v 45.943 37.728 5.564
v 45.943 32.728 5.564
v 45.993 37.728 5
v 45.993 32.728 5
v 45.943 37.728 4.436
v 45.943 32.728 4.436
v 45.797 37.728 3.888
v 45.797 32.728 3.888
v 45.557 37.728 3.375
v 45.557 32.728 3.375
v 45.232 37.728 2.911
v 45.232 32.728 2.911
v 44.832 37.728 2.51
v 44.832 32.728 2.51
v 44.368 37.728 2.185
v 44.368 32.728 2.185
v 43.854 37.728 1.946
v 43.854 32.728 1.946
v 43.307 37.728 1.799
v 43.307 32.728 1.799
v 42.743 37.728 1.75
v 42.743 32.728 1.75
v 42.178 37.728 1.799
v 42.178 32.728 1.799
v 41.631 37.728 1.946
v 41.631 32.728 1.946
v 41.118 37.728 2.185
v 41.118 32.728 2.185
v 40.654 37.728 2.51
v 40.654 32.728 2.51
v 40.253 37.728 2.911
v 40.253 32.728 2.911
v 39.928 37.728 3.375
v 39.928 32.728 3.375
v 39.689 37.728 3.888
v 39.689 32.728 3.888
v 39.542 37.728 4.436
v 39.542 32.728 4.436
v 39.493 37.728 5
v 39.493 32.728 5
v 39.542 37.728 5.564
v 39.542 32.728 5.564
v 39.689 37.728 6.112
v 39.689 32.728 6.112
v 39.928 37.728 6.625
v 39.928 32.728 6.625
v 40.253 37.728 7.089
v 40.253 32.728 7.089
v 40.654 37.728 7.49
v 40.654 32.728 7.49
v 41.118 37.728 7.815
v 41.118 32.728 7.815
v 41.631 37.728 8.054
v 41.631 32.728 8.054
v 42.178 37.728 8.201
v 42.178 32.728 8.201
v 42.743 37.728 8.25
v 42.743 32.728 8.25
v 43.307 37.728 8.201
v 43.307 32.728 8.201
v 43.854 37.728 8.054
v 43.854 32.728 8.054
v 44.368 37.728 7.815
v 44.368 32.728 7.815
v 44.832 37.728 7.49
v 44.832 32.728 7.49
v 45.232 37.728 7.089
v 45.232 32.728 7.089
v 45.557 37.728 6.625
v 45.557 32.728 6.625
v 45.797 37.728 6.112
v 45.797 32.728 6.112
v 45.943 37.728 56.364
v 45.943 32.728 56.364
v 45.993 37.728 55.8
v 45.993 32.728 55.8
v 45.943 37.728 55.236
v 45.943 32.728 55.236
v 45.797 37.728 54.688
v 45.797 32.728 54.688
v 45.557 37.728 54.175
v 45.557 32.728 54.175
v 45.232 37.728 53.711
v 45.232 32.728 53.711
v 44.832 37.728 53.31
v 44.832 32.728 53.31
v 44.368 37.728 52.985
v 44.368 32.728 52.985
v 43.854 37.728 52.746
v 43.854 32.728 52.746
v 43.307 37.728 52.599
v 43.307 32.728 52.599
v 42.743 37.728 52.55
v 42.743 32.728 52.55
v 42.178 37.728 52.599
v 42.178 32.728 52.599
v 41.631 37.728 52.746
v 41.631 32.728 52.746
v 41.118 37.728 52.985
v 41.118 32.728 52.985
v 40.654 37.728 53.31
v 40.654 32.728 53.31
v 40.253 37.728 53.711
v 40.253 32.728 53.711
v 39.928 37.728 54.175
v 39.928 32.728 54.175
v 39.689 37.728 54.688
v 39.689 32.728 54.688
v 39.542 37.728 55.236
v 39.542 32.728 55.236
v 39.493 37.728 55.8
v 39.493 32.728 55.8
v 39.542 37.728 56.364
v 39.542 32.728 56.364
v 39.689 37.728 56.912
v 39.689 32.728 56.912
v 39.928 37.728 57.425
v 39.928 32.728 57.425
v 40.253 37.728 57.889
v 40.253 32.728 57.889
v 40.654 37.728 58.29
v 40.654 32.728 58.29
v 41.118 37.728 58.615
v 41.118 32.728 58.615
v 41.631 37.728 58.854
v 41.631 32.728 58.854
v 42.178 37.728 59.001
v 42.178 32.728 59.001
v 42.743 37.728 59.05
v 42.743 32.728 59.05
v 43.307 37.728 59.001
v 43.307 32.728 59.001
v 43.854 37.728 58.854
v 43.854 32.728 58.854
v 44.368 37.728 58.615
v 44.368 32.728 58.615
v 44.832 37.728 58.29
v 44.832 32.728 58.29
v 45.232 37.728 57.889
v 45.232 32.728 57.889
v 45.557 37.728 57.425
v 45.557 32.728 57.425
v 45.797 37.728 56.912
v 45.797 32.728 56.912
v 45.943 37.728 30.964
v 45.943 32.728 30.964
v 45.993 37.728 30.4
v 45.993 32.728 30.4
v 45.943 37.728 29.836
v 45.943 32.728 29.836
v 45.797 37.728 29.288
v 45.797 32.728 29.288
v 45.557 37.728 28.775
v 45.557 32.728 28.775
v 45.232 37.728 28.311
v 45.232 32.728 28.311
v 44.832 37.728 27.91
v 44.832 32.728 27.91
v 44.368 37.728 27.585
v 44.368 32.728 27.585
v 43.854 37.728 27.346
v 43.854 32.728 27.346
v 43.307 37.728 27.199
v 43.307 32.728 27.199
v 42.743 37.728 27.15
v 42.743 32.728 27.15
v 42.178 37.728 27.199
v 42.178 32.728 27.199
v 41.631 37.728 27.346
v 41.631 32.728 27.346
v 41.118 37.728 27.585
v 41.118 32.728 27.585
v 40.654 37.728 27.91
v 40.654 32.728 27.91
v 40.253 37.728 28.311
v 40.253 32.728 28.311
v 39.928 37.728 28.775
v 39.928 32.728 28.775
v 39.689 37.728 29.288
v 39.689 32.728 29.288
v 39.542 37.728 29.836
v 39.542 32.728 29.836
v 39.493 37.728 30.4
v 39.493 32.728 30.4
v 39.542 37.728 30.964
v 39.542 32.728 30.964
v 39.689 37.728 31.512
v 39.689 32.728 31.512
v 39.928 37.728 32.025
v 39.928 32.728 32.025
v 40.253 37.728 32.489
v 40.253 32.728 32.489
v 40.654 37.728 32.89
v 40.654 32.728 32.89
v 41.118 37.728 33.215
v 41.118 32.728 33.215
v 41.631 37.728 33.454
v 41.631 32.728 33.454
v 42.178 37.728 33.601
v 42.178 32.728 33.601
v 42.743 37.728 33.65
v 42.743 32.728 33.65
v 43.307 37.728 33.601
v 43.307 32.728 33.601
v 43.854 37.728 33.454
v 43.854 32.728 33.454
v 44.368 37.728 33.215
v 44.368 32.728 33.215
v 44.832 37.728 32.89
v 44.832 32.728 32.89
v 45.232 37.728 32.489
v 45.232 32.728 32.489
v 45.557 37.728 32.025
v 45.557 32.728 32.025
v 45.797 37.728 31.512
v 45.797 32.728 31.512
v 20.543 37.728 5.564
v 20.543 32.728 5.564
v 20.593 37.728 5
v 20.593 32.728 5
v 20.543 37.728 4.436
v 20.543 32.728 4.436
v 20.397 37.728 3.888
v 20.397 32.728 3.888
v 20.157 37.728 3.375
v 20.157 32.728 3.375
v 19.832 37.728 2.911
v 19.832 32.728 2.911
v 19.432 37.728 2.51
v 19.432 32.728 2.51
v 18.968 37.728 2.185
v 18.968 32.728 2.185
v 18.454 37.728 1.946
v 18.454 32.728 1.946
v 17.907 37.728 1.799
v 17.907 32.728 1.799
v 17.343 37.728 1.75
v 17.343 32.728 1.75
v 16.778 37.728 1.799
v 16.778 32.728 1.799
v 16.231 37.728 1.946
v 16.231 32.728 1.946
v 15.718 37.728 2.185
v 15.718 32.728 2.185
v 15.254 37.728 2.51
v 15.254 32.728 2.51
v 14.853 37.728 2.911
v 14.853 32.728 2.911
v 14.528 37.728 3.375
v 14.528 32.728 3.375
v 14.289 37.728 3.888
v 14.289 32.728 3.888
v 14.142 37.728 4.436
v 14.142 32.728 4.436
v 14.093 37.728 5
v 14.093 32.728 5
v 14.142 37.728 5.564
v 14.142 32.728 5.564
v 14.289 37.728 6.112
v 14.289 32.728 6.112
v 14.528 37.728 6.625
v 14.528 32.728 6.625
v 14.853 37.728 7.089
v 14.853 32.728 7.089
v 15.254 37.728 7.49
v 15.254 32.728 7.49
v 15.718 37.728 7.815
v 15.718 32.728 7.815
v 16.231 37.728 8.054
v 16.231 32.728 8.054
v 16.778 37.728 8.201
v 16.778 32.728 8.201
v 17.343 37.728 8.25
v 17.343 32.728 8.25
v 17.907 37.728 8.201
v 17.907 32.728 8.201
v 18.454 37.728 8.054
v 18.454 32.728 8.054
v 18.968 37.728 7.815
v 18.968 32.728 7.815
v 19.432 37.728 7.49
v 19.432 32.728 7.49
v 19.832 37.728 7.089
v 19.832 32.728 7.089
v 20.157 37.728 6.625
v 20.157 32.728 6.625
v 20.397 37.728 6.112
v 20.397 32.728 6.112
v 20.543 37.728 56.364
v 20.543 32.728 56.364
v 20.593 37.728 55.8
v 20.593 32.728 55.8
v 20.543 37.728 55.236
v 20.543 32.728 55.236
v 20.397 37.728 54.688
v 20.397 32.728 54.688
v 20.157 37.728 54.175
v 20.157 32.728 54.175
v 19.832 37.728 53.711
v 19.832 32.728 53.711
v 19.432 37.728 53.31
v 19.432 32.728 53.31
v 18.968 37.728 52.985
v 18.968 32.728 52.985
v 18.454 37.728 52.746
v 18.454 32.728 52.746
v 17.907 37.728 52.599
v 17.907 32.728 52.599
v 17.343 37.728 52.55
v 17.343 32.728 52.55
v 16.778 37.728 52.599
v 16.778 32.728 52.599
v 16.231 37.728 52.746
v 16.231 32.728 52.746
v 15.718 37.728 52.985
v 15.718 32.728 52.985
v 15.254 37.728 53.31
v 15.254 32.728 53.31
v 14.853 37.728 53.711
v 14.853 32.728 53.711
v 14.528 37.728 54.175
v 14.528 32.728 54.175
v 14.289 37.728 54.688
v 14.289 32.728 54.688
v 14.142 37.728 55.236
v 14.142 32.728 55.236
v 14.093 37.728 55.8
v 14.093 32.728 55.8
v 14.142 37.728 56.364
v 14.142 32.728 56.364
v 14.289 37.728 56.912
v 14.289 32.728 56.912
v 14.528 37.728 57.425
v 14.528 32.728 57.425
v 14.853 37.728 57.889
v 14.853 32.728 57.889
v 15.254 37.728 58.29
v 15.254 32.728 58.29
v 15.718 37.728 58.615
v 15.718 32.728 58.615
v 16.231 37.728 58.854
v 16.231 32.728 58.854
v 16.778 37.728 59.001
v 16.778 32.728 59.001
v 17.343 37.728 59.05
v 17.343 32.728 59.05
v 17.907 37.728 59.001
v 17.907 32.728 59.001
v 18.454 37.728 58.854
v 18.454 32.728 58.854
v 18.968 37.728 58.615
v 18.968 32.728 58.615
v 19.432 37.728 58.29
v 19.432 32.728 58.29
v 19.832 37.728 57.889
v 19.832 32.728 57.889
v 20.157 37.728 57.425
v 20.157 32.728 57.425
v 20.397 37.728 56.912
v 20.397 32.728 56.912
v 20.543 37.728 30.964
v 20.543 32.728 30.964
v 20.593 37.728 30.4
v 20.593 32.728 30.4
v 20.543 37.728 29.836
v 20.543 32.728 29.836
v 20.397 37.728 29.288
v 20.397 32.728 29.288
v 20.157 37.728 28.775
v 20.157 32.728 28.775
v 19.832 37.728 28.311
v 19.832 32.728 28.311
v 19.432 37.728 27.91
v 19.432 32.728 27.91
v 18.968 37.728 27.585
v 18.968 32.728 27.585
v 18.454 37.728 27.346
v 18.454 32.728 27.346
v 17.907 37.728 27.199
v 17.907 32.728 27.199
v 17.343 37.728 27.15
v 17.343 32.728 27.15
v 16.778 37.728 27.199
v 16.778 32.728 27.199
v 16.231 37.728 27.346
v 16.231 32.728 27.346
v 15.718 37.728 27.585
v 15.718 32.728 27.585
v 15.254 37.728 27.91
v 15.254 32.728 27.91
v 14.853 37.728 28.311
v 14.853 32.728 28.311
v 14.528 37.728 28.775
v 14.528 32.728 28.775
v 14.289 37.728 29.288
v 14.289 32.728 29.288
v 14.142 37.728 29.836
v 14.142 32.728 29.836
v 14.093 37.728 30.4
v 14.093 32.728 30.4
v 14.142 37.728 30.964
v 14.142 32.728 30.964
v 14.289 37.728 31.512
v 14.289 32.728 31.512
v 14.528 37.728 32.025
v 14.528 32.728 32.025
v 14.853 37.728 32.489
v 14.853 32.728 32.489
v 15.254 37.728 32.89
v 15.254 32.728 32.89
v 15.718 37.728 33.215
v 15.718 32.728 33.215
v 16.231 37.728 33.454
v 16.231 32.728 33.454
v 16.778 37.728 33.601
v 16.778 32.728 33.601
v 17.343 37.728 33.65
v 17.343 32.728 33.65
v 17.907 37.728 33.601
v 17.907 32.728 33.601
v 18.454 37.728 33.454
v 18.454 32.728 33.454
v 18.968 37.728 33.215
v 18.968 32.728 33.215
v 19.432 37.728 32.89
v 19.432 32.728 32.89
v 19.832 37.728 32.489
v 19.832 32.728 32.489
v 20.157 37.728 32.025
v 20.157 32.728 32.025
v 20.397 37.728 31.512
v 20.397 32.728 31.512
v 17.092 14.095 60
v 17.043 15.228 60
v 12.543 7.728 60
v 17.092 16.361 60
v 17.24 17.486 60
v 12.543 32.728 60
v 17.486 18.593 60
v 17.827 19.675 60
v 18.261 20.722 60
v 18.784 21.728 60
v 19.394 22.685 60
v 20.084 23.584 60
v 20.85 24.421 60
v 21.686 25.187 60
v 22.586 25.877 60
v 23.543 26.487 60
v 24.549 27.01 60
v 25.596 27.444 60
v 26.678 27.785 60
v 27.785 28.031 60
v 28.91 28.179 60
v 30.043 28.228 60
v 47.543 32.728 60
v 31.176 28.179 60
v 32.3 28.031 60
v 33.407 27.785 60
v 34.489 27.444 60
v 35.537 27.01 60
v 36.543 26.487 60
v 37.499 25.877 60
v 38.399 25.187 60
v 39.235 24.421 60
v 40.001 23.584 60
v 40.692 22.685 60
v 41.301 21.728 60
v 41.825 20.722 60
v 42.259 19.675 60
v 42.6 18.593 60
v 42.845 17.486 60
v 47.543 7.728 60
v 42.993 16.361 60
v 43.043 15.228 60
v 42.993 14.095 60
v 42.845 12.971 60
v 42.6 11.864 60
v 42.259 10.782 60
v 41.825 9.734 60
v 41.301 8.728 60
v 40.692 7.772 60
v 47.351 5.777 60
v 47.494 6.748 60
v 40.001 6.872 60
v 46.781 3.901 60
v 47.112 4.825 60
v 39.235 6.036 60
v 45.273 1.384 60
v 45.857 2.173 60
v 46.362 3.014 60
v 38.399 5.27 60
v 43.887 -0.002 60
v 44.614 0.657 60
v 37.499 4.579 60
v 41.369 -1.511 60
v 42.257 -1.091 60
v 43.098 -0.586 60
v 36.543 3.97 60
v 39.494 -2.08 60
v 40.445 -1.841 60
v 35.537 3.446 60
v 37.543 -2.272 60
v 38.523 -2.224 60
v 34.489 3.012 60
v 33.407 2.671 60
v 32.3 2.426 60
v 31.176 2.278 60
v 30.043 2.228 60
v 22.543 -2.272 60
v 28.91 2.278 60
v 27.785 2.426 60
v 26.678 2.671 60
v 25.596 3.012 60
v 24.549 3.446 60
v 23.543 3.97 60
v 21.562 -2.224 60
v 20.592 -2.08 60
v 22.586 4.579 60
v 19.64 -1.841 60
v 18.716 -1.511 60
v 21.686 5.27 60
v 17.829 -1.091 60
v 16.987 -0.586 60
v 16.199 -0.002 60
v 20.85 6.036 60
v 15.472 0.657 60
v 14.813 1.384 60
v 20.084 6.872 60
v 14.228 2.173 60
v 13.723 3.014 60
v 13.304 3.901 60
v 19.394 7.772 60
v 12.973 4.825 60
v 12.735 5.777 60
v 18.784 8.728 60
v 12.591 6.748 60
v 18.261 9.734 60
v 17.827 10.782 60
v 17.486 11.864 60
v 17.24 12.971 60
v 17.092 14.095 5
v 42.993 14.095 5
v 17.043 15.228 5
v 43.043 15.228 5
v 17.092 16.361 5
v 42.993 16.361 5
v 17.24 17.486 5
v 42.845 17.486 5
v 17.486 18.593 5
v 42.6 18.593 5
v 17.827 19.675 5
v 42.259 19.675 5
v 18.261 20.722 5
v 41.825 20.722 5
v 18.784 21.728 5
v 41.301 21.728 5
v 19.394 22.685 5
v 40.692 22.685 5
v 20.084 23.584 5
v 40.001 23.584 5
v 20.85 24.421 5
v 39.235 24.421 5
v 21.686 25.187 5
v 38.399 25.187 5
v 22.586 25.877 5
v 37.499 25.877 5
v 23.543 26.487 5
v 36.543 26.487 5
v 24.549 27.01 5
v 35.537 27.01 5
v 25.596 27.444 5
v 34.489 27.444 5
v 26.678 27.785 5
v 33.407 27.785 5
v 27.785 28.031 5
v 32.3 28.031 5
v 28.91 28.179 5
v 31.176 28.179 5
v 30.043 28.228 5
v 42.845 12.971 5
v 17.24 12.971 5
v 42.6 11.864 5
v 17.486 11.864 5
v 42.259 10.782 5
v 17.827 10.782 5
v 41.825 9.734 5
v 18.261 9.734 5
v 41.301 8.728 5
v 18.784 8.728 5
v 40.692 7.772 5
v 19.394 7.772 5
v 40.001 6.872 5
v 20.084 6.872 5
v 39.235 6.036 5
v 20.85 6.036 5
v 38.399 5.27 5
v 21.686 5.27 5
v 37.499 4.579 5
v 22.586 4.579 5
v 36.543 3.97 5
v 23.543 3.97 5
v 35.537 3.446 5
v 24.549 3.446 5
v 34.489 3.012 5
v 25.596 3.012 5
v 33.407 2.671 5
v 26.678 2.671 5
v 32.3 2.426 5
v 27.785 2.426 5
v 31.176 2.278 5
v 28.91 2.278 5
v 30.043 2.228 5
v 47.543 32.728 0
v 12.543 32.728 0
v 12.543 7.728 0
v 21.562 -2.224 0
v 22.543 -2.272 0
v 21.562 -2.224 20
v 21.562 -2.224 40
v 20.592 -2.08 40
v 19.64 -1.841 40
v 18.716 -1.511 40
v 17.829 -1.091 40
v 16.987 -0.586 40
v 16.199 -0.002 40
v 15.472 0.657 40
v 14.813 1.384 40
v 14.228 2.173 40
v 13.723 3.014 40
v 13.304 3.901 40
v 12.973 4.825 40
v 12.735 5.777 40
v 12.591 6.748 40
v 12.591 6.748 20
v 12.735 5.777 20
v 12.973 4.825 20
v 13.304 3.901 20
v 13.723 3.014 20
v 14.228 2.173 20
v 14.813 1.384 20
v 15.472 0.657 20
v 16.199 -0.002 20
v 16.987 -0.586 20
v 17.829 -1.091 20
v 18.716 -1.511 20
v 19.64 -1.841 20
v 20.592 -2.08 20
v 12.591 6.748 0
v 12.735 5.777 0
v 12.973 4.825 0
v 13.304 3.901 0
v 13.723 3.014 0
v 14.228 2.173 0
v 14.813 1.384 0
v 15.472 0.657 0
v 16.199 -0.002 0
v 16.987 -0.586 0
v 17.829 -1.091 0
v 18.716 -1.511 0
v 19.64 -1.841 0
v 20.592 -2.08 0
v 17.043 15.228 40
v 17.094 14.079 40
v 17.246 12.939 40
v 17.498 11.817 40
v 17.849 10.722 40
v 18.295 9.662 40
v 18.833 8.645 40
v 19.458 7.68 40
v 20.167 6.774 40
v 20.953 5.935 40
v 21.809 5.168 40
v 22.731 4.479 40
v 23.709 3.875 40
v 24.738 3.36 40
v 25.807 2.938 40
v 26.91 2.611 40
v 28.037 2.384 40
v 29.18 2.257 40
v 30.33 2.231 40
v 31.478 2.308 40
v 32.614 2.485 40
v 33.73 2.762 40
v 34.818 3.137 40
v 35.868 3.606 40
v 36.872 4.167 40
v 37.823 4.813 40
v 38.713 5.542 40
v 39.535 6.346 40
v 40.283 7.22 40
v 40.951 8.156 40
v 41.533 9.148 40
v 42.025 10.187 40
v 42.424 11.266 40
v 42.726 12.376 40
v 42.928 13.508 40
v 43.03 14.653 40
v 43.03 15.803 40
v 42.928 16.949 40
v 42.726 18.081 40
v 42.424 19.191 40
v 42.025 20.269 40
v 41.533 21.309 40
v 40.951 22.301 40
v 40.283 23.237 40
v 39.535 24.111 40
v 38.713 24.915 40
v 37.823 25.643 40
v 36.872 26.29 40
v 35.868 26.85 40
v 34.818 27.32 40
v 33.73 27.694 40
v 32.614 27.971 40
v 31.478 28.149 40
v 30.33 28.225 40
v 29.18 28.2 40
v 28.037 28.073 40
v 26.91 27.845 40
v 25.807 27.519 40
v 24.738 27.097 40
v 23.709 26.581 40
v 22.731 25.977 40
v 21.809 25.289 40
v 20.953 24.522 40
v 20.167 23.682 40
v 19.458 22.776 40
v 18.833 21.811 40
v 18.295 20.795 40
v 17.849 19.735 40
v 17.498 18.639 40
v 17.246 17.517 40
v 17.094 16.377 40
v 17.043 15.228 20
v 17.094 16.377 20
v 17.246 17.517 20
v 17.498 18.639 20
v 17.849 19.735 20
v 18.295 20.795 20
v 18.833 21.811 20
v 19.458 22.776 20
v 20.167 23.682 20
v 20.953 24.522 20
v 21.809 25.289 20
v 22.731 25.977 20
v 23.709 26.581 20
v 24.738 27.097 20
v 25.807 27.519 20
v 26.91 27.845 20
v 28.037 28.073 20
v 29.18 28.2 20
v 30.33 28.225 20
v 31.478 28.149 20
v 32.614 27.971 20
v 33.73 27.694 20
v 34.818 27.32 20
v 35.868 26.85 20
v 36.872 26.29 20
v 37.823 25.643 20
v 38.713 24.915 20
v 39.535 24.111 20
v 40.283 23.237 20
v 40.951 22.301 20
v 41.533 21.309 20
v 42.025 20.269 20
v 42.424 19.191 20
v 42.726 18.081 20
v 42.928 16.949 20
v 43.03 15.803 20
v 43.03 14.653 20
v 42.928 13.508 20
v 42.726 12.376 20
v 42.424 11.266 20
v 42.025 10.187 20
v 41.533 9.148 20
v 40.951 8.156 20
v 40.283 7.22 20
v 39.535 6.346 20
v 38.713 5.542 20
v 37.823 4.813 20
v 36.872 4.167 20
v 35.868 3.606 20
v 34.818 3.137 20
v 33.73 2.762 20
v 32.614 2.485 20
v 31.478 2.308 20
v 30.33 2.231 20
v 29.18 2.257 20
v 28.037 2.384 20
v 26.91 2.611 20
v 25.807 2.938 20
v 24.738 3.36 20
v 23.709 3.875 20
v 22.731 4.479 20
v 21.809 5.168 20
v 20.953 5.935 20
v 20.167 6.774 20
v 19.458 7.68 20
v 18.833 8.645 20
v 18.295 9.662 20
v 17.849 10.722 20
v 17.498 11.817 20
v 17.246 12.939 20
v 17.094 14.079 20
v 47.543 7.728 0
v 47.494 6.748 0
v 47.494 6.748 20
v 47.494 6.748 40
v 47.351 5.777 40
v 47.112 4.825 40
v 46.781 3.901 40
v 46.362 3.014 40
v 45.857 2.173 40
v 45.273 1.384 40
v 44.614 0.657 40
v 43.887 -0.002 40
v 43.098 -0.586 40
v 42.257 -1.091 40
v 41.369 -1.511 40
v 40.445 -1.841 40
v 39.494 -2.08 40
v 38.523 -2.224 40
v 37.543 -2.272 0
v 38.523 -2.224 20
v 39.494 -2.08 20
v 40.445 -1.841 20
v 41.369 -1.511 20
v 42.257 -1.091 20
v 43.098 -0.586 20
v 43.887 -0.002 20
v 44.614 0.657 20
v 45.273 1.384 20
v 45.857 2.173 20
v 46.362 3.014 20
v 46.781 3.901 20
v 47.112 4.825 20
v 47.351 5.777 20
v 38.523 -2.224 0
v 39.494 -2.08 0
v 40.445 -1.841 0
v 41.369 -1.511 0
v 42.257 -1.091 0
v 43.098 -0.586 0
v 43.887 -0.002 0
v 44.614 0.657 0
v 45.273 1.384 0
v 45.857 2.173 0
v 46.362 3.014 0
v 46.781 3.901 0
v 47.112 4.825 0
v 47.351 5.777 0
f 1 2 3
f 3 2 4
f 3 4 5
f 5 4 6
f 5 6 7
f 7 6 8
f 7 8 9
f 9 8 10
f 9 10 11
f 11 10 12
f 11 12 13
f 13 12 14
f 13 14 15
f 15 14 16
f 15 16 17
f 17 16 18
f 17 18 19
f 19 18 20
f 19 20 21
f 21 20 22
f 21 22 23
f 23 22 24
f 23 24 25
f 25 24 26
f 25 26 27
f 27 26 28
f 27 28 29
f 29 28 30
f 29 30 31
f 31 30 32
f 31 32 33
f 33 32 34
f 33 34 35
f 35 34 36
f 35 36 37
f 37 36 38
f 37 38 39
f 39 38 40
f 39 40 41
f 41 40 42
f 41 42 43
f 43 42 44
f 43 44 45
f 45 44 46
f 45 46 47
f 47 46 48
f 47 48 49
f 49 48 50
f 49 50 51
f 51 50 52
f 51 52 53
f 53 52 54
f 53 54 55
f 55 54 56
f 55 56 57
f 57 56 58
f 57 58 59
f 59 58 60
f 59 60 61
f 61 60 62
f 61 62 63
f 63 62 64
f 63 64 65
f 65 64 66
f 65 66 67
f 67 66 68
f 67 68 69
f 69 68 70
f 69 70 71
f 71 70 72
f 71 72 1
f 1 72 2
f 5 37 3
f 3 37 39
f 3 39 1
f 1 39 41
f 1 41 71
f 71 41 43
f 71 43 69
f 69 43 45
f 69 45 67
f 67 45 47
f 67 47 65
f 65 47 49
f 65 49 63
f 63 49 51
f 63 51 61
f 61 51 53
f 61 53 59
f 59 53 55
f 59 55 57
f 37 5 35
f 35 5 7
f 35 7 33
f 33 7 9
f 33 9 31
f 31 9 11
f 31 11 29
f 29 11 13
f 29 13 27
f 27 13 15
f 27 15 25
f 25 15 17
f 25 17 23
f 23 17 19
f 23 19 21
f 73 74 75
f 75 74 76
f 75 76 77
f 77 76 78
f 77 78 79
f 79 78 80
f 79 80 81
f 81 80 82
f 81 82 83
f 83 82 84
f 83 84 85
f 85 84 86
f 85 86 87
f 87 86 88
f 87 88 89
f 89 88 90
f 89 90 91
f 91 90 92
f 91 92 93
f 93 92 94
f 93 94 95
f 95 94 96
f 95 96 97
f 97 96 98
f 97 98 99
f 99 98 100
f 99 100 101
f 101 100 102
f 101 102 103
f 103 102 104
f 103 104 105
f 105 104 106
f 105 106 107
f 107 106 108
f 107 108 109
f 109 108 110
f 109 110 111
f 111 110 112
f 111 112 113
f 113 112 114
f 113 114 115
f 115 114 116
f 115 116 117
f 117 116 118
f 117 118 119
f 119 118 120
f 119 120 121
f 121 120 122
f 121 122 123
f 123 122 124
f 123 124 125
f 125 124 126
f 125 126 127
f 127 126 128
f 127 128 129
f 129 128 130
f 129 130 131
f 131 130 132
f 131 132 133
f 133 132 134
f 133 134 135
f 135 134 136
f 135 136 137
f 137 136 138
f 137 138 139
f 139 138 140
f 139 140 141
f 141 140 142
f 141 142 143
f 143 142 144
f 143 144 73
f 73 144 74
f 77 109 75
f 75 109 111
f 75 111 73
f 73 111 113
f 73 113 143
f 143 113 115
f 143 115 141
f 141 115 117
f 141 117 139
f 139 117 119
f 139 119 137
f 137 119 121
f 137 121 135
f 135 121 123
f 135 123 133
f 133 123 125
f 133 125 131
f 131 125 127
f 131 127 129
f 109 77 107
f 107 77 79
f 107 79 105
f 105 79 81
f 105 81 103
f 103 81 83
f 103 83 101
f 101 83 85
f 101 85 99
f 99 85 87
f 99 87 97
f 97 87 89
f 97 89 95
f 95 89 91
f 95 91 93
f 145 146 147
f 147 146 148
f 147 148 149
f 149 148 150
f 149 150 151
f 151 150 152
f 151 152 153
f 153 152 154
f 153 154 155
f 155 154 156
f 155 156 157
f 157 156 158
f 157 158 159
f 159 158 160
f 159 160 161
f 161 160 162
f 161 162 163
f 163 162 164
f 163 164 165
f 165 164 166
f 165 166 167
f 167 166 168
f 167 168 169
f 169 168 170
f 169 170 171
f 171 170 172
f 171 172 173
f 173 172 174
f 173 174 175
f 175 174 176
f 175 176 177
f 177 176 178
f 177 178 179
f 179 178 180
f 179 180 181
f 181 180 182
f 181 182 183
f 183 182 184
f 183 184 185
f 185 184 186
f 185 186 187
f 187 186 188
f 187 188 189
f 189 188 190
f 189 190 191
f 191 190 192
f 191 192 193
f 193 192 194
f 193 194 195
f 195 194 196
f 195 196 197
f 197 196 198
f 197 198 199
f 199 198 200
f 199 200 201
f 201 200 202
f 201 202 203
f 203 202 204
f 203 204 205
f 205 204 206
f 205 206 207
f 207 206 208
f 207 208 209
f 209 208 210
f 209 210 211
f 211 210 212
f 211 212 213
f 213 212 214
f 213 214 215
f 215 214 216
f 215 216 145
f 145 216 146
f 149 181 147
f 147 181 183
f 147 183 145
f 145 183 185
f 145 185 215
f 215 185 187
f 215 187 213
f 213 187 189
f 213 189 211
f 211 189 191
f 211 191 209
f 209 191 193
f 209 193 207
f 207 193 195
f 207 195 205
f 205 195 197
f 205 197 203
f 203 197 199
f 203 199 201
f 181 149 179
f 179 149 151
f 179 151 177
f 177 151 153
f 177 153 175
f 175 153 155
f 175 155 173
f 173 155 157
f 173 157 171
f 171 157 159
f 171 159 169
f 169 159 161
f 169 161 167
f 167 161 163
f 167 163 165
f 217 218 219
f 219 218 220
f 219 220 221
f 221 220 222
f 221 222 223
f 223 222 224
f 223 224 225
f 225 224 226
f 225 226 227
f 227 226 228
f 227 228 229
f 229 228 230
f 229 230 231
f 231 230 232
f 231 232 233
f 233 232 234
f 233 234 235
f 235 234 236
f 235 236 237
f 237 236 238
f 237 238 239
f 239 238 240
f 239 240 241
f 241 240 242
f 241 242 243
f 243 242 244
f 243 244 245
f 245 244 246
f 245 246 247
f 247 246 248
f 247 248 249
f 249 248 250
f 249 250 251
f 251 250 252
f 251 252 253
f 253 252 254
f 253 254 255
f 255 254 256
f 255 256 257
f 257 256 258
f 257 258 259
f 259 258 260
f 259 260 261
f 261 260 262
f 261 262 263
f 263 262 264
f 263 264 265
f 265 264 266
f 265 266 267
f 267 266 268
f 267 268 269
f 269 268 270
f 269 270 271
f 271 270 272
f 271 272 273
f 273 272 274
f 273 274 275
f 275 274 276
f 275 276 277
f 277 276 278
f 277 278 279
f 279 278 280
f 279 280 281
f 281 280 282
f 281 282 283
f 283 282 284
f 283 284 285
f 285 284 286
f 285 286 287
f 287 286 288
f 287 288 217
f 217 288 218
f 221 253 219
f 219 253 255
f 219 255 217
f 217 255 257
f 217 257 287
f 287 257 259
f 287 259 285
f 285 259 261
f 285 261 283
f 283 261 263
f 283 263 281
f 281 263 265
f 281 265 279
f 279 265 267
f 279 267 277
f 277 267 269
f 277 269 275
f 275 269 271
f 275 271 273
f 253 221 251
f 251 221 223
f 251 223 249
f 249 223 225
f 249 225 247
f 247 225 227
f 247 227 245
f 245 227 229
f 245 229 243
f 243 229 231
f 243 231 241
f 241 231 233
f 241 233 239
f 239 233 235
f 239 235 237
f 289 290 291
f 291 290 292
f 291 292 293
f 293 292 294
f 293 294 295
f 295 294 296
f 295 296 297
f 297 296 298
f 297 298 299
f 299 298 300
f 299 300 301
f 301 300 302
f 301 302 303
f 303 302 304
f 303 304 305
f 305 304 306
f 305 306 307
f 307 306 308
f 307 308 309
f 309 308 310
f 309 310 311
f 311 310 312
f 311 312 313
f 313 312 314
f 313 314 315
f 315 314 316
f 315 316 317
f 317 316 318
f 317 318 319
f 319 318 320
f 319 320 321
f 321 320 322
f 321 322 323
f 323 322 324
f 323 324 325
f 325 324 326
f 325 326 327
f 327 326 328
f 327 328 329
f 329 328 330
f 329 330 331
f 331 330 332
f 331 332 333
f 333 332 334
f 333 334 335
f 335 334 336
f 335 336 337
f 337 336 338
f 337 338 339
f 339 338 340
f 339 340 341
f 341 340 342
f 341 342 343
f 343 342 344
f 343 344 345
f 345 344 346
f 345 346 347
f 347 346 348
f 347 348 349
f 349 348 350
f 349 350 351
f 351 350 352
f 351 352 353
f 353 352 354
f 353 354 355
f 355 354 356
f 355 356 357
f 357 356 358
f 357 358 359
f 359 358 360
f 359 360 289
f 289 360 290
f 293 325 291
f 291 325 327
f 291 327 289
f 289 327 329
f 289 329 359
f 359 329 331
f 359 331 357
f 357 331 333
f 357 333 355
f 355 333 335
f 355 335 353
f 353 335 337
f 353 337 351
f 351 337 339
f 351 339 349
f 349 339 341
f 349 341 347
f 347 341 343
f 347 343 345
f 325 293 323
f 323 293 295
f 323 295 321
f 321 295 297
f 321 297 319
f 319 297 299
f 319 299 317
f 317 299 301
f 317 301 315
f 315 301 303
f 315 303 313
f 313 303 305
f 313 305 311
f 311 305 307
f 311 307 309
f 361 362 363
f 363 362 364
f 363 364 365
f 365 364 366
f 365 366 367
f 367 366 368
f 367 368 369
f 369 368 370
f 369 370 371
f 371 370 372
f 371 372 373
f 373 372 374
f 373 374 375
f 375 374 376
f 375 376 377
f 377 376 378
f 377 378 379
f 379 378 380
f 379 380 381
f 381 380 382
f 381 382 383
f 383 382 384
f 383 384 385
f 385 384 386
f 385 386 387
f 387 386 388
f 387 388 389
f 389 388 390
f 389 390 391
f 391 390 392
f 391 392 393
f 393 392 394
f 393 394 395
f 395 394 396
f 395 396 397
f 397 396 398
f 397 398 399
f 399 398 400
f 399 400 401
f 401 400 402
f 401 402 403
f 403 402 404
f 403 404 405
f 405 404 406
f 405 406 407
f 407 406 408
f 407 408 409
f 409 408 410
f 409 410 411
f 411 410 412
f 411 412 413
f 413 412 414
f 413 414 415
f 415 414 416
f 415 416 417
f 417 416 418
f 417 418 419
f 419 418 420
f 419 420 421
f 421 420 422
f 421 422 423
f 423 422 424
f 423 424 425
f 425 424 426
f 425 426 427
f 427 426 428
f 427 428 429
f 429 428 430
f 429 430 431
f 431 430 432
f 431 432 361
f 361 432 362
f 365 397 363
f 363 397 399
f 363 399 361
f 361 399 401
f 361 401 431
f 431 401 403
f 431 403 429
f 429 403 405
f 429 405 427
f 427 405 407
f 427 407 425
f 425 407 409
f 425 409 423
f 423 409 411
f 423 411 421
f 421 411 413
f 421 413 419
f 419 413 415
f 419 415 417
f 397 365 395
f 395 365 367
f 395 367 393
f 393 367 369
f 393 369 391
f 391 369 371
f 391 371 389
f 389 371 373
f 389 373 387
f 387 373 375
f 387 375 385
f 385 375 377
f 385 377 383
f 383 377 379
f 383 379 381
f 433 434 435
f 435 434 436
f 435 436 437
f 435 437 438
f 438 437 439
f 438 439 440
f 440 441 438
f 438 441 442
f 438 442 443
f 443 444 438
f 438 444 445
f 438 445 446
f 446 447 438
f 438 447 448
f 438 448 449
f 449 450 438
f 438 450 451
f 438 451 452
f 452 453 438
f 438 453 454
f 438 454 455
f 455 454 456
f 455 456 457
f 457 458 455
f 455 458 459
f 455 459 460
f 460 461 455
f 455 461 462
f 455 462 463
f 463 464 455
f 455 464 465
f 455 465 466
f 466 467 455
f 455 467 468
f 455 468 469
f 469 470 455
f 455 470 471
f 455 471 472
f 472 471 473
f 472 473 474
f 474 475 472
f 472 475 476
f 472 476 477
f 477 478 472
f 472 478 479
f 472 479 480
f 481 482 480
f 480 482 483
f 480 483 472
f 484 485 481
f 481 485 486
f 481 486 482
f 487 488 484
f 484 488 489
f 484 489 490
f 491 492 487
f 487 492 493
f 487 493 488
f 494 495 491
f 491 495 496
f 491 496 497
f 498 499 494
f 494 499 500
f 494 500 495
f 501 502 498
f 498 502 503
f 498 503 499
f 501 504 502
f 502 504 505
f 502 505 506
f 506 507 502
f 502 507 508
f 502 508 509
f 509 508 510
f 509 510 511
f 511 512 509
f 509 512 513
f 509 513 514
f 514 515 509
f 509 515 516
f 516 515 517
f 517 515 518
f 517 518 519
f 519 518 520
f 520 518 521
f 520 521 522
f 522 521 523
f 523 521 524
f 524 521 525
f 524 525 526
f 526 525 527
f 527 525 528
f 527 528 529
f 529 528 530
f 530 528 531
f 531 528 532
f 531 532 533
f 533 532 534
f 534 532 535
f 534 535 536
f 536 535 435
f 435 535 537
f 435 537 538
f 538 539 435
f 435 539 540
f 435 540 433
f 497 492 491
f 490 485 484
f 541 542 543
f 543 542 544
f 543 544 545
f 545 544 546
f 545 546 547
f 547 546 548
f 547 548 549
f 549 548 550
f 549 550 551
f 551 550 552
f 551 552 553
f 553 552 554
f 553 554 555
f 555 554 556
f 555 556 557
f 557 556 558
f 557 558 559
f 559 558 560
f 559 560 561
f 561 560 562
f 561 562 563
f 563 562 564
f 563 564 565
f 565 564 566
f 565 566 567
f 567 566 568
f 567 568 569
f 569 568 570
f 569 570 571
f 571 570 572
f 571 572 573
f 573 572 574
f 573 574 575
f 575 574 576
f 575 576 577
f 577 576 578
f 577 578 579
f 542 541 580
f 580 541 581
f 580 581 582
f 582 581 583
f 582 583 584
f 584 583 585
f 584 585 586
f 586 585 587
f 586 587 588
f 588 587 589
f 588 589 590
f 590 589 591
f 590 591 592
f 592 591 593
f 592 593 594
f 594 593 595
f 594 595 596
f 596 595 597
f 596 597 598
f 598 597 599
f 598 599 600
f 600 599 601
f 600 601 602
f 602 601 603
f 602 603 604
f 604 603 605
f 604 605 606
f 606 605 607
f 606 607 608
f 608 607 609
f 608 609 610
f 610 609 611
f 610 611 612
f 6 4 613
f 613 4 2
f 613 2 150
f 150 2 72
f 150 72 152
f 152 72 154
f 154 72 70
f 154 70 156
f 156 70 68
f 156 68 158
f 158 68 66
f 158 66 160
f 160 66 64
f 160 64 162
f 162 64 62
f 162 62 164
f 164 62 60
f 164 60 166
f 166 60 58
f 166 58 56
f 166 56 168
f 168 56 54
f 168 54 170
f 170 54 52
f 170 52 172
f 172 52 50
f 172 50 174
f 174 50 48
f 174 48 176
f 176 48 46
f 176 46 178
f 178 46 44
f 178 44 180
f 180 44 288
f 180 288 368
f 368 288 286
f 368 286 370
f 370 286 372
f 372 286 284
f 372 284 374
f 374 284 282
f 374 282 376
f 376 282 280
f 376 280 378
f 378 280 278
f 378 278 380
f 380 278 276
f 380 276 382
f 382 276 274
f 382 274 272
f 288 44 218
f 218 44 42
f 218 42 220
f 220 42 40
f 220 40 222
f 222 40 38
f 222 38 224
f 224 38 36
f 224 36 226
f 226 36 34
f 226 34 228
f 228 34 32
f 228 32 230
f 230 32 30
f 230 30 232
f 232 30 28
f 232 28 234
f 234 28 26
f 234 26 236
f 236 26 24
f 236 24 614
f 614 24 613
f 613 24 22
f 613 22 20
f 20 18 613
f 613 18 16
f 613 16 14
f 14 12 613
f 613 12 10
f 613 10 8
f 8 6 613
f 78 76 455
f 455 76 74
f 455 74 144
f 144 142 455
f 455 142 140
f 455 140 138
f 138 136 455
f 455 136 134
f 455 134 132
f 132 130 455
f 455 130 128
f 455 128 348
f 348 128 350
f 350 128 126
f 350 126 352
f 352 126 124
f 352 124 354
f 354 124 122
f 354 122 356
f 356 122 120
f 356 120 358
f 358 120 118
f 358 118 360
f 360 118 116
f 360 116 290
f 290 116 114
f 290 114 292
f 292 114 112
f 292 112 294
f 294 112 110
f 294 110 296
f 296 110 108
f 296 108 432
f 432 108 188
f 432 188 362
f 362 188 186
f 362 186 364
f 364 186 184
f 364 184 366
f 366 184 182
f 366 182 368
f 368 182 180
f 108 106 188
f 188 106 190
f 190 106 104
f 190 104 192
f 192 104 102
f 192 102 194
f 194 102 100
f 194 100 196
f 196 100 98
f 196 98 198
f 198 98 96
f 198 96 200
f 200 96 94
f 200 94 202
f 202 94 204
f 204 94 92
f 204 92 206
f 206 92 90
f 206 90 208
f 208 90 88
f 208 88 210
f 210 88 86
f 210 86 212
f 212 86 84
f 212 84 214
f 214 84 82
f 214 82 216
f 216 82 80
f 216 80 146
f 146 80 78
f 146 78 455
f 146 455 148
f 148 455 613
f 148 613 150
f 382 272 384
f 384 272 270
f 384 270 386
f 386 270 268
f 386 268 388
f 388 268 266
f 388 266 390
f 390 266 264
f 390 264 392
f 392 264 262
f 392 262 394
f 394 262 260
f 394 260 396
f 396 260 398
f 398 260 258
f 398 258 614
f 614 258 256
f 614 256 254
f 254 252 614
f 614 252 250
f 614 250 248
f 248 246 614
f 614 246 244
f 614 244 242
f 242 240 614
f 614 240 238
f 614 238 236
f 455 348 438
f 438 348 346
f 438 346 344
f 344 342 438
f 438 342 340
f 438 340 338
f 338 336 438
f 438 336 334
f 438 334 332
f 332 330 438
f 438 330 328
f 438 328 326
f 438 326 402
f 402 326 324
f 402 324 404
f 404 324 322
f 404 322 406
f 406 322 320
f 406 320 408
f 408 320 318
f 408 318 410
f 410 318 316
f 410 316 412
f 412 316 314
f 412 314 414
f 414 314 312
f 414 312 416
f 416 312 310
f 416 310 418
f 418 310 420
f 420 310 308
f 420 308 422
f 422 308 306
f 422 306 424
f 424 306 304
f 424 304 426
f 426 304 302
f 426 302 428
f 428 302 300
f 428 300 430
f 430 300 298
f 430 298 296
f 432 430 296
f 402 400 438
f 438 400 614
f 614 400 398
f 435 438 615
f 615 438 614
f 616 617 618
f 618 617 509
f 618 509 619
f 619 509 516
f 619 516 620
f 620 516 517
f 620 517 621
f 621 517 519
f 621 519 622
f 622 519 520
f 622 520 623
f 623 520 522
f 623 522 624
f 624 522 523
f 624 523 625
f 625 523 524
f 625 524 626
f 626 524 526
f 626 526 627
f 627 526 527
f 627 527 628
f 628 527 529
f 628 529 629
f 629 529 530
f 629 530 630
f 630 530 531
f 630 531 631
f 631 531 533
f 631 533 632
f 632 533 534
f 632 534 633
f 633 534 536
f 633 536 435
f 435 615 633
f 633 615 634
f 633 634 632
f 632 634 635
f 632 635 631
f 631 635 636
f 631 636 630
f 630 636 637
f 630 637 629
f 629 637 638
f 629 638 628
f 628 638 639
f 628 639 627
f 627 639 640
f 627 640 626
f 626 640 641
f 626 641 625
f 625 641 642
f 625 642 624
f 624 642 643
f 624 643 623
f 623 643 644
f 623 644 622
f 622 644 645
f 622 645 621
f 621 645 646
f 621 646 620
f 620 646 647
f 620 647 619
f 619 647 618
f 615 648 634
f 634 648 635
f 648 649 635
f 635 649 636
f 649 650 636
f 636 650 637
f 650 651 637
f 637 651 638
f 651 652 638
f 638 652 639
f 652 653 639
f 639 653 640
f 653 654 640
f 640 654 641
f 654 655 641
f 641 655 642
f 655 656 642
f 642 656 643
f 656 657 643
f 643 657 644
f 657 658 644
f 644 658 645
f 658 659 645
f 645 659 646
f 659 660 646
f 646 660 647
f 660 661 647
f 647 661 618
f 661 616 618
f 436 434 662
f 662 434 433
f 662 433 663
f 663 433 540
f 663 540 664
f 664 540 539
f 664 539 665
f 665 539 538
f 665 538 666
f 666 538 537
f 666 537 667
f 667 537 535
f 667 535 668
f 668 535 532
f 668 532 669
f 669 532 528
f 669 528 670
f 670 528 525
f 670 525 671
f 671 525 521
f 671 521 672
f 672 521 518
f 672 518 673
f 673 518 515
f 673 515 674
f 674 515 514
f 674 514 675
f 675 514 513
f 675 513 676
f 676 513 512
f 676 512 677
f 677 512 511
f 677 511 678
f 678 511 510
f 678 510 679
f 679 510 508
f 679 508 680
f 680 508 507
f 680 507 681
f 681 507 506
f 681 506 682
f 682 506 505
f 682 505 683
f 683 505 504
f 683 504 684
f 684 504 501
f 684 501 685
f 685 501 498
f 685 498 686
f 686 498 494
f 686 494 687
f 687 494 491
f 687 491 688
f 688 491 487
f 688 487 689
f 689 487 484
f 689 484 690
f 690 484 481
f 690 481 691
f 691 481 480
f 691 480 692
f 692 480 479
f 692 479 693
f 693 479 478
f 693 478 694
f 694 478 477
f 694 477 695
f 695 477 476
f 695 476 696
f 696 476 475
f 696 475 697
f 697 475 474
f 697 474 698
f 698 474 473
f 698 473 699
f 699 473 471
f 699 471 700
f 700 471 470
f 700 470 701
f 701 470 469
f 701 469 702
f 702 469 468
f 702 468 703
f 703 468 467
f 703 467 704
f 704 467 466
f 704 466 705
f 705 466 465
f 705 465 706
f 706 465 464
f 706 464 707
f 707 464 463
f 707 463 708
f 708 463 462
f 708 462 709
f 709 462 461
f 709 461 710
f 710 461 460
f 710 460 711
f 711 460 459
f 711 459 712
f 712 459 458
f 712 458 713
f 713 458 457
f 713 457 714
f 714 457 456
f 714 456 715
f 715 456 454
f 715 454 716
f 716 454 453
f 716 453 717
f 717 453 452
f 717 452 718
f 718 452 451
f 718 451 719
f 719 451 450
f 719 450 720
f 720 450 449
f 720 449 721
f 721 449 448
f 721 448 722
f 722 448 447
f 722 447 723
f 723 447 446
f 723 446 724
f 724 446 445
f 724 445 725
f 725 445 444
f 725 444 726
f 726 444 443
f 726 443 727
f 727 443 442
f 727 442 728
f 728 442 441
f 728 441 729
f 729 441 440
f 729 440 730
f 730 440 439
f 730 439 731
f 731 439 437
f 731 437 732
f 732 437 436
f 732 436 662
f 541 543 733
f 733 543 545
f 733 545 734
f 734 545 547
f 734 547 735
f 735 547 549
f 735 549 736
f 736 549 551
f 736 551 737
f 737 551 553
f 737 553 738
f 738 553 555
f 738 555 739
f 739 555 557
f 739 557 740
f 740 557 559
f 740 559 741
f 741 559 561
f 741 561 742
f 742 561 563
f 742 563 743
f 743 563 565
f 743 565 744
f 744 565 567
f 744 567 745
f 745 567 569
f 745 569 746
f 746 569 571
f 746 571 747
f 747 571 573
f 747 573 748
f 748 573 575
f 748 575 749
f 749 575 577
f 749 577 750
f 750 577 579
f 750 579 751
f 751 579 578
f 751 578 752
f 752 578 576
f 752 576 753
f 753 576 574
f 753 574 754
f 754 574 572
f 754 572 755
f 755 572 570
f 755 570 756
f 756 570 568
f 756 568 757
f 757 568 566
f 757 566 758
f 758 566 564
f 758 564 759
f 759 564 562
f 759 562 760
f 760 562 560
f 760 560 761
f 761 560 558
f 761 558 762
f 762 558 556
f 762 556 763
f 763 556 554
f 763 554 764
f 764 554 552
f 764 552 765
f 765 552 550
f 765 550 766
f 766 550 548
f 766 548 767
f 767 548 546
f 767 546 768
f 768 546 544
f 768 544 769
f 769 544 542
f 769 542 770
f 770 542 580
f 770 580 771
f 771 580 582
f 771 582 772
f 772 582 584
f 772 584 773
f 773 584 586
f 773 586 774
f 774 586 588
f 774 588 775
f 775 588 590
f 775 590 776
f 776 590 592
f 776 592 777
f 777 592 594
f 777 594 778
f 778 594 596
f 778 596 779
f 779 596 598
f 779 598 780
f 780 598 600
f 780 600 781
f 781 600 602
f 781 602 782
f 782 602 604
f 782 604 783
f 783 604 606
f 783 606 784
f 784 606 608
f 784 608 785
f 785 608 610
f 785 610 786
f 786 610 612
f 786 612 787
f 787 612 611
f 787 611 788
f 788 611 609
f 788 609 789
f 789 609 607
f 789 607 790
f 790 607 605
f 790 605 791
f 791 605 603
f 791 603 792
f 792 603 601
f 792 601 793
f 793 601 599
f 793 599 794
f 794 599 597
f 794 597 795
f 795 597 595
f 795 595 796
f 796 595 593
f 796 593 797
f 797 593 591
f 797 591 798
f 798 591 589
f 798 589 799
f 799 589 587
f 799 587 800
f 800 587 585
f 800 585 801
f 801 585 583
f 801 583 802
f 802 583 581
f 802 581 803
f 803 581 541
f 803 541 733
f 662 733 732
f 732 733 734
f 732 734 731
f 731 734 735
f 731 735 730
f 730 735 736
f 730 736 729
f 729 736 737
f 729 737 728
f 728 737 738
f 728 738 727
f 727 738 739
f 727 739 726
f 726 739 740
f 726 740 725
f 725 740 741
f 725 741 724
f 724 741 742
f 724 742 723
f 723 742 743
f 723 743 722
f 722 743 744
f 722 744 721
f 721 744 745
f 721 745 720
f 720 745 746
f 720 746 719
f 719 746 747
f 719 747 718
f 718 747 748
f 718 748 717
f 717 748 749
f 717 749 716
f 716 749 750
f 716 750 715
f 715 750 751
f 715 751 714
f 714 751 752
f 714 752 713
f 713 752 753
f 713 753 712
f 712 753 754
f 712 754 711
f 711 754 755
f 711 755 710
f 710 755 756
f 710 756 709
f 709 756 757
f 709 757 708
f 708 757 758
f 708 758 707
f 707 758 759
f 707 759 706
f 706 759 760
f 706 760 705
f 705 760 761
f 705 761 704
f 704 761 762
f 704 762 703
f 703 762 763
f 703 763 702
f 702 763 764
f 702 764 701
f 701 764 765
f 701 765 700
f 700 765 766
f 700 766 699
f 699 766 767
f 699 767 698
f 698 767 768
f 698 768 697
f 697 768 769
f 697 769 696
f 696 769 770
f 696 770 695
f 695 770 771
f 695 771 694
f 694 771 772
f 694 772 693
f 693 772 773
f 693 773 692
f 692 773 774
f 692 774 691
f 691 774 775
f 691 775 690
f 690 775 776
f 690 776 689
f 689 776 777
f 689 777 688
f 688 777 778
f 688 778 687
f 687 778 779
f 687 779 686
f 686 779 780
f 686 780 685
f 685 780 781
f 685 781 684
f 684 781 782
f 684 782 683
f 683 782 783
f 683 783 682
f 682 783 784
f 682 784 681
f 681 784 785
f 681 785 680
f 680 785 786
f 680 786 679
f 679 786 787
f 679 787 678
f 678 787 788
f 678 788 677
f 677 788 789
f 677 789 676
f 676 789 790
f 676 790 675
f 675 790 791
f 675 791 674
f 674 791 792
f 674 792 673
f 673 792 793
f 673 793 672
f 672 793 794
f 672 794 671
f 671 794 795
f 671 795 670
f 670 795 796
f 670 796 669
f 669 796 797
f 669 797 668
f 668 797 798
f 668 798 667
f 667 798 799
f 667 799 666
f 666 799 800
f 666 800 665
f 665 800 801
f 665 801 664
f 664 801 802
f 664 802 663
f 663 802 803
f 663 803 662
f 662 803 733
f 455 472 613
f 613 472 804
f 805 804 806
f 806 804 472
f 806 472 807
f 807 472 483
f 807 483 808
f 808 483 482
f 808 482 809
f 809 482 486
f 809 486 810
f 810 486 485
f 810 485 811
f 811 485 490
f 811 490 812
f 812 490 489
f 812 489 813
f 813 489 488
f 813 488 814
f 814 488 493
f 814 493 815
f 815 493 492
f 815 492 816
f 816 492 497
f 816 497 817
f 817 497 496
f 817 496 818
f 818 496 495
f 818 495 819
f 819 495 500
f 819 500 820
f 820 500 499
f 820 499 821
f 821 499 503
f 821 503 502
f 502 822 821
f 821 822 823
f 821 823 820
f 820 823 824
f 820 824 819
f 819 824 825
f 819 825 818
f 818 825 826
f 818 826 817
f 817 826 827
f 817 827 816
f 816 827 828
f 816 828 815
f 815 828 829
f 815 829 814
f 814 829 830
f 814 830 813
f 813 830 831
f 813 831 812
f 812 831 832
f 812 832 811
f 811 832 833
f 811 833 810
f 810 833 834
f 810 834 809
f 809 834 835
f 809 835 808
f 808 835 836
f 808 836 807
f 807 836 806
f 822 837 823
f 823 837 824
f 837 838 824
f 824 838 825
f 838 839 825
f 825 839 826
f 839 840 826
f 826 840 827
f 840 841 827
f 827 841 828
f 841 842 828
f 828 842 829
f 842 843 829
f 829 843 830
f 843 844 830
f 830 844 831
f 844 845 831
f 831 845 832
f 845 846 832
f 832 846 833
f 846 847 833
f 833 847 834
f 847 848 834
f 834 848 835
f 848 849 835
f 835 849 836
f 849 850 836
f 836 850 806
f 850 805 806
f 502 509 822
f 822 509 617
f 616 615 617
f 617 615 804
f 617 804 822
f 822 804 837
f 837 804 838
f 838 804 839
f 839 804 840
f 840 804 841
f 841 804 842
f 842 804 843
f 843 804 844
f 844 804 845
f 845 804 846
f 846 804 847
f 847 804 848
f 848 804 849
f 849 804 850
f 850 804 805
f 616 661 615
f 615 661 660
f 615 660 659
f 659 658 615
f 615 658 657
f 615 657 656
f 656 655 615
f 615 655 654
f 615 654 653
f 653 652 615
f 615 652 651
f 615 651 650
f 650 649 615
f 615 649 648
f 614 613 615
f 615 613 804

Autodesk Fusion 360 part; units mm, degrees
sketch "Sketch1" plane through (0, 0, 0) normal (0, 0, 1) x (1, 0, 0)
  line L0 (12.5427, 32.7282) -> (47.5427, 32.7282)
  line L1 (47.5427, 32.7282) -> (47.5427, 7.7282)
  line L2 (37.5427, -2.2718) -> (22.5427, -2.2718)
  line L3 (12.5427, 7.7282) -> (12.5427, 32.7282)
  line L4 (47.5427, 15.2282) -> (12.5427, 15.2282) construction
  line L5 (30.0427, 32.7282) -> (30.0427, 15.2282) construction
  circle A0 centre (30.0427, 15.2282) radius 13
  arc A1 (12.5427, 7.7282) -> (22.5427, -2.2718) centre (22.5427, 7.7282) ccw
  arc A2 (37.5427, -2.2718) -> (47.5427, 7.7282) centre (37.5427, 7.7282) ccw
  point P0 (12.5427, -2.2718)
  dimension "d1" = 35
  dimension "d2" = 35
  dimension "d4" = 26
  dimension "d21" = 10
extrude "Extrude2" add sketch "Sketch1" along normal blind 20 makes body 1
extrude "Extrude1" add sketch "Sketch1" along normal blind 2 separate body contours L0 L1 L2 L3 A1 A2 | A0 makes body 2
combine "Combine1" operation add target body 1 tool bodies 2
extrude "Extrude3" add 1 faces at (25.9943, 15.2712, 2) along direction (0, 0, 1) blind 3 on bodies 1 bodies 1
extrude "Extrude4" add 1 faces at (45.9943, 19.2074, 20) along direction (0, 0, 1) blind 40 on bodies 1 bodies 1
sketch "Sketch2" plane through (0, 32.7282, 0) normal (0, 1, 0) x (-1, 0, 0)
  line L0 (-12.5427, 0) -> (-12.5427, 60)
  line L1 (-12.5427, 60) -> (-47.5427, 60)
  line L2 (-47.5427, 60) -> (-47.5427, 0)
  line L3 (-47.5427, 0) -> (-12.5427, 0)
  line L4 (-47.5427, 60) -> (-12.5427, 60)
  line L5 (-12.5427, 60) -> (-12.5427, 0)
  line L6 (-12.5427, 0) -> (-47.5427, 0)
  line L7 (-47.5427, 0) -> (-47.5427, 60)
  circle A0 centre (-42.7427, 5) radius 3.25
  circle A1 centre (-17.3427, 5) radius 3.25
  circle A2 centre (-42.7427, 30.4) radius 3.25
  circle A3 centre (-17.3427, 30.4) radius 3.25
  circle A4 centre (-42.7427, 55.8) radius 3.25
  circle A5 centre (-17.3427, 55.8) radius 3.25
  dimension "d15" = 6.5
  dimension "d16" = 4.8
  dimension "d19" = 25.4
  dimension "d20" = 25.4
  dimension "d22" = 5
extrude "Extrude5" add sketch "Sketch2" along normal blind 5 contours A0 | A1 | A2 | A3 | A4 | A5 bodies 1
equation "PegWidth = 6.5 mm"
equation "HoleDistance = 25.4 mm"
equation "d15 = PegWidth"
equation "d16 = ( 35 mm - HoleDistance ) / 2"
equation "d20 = HoleDistance"
